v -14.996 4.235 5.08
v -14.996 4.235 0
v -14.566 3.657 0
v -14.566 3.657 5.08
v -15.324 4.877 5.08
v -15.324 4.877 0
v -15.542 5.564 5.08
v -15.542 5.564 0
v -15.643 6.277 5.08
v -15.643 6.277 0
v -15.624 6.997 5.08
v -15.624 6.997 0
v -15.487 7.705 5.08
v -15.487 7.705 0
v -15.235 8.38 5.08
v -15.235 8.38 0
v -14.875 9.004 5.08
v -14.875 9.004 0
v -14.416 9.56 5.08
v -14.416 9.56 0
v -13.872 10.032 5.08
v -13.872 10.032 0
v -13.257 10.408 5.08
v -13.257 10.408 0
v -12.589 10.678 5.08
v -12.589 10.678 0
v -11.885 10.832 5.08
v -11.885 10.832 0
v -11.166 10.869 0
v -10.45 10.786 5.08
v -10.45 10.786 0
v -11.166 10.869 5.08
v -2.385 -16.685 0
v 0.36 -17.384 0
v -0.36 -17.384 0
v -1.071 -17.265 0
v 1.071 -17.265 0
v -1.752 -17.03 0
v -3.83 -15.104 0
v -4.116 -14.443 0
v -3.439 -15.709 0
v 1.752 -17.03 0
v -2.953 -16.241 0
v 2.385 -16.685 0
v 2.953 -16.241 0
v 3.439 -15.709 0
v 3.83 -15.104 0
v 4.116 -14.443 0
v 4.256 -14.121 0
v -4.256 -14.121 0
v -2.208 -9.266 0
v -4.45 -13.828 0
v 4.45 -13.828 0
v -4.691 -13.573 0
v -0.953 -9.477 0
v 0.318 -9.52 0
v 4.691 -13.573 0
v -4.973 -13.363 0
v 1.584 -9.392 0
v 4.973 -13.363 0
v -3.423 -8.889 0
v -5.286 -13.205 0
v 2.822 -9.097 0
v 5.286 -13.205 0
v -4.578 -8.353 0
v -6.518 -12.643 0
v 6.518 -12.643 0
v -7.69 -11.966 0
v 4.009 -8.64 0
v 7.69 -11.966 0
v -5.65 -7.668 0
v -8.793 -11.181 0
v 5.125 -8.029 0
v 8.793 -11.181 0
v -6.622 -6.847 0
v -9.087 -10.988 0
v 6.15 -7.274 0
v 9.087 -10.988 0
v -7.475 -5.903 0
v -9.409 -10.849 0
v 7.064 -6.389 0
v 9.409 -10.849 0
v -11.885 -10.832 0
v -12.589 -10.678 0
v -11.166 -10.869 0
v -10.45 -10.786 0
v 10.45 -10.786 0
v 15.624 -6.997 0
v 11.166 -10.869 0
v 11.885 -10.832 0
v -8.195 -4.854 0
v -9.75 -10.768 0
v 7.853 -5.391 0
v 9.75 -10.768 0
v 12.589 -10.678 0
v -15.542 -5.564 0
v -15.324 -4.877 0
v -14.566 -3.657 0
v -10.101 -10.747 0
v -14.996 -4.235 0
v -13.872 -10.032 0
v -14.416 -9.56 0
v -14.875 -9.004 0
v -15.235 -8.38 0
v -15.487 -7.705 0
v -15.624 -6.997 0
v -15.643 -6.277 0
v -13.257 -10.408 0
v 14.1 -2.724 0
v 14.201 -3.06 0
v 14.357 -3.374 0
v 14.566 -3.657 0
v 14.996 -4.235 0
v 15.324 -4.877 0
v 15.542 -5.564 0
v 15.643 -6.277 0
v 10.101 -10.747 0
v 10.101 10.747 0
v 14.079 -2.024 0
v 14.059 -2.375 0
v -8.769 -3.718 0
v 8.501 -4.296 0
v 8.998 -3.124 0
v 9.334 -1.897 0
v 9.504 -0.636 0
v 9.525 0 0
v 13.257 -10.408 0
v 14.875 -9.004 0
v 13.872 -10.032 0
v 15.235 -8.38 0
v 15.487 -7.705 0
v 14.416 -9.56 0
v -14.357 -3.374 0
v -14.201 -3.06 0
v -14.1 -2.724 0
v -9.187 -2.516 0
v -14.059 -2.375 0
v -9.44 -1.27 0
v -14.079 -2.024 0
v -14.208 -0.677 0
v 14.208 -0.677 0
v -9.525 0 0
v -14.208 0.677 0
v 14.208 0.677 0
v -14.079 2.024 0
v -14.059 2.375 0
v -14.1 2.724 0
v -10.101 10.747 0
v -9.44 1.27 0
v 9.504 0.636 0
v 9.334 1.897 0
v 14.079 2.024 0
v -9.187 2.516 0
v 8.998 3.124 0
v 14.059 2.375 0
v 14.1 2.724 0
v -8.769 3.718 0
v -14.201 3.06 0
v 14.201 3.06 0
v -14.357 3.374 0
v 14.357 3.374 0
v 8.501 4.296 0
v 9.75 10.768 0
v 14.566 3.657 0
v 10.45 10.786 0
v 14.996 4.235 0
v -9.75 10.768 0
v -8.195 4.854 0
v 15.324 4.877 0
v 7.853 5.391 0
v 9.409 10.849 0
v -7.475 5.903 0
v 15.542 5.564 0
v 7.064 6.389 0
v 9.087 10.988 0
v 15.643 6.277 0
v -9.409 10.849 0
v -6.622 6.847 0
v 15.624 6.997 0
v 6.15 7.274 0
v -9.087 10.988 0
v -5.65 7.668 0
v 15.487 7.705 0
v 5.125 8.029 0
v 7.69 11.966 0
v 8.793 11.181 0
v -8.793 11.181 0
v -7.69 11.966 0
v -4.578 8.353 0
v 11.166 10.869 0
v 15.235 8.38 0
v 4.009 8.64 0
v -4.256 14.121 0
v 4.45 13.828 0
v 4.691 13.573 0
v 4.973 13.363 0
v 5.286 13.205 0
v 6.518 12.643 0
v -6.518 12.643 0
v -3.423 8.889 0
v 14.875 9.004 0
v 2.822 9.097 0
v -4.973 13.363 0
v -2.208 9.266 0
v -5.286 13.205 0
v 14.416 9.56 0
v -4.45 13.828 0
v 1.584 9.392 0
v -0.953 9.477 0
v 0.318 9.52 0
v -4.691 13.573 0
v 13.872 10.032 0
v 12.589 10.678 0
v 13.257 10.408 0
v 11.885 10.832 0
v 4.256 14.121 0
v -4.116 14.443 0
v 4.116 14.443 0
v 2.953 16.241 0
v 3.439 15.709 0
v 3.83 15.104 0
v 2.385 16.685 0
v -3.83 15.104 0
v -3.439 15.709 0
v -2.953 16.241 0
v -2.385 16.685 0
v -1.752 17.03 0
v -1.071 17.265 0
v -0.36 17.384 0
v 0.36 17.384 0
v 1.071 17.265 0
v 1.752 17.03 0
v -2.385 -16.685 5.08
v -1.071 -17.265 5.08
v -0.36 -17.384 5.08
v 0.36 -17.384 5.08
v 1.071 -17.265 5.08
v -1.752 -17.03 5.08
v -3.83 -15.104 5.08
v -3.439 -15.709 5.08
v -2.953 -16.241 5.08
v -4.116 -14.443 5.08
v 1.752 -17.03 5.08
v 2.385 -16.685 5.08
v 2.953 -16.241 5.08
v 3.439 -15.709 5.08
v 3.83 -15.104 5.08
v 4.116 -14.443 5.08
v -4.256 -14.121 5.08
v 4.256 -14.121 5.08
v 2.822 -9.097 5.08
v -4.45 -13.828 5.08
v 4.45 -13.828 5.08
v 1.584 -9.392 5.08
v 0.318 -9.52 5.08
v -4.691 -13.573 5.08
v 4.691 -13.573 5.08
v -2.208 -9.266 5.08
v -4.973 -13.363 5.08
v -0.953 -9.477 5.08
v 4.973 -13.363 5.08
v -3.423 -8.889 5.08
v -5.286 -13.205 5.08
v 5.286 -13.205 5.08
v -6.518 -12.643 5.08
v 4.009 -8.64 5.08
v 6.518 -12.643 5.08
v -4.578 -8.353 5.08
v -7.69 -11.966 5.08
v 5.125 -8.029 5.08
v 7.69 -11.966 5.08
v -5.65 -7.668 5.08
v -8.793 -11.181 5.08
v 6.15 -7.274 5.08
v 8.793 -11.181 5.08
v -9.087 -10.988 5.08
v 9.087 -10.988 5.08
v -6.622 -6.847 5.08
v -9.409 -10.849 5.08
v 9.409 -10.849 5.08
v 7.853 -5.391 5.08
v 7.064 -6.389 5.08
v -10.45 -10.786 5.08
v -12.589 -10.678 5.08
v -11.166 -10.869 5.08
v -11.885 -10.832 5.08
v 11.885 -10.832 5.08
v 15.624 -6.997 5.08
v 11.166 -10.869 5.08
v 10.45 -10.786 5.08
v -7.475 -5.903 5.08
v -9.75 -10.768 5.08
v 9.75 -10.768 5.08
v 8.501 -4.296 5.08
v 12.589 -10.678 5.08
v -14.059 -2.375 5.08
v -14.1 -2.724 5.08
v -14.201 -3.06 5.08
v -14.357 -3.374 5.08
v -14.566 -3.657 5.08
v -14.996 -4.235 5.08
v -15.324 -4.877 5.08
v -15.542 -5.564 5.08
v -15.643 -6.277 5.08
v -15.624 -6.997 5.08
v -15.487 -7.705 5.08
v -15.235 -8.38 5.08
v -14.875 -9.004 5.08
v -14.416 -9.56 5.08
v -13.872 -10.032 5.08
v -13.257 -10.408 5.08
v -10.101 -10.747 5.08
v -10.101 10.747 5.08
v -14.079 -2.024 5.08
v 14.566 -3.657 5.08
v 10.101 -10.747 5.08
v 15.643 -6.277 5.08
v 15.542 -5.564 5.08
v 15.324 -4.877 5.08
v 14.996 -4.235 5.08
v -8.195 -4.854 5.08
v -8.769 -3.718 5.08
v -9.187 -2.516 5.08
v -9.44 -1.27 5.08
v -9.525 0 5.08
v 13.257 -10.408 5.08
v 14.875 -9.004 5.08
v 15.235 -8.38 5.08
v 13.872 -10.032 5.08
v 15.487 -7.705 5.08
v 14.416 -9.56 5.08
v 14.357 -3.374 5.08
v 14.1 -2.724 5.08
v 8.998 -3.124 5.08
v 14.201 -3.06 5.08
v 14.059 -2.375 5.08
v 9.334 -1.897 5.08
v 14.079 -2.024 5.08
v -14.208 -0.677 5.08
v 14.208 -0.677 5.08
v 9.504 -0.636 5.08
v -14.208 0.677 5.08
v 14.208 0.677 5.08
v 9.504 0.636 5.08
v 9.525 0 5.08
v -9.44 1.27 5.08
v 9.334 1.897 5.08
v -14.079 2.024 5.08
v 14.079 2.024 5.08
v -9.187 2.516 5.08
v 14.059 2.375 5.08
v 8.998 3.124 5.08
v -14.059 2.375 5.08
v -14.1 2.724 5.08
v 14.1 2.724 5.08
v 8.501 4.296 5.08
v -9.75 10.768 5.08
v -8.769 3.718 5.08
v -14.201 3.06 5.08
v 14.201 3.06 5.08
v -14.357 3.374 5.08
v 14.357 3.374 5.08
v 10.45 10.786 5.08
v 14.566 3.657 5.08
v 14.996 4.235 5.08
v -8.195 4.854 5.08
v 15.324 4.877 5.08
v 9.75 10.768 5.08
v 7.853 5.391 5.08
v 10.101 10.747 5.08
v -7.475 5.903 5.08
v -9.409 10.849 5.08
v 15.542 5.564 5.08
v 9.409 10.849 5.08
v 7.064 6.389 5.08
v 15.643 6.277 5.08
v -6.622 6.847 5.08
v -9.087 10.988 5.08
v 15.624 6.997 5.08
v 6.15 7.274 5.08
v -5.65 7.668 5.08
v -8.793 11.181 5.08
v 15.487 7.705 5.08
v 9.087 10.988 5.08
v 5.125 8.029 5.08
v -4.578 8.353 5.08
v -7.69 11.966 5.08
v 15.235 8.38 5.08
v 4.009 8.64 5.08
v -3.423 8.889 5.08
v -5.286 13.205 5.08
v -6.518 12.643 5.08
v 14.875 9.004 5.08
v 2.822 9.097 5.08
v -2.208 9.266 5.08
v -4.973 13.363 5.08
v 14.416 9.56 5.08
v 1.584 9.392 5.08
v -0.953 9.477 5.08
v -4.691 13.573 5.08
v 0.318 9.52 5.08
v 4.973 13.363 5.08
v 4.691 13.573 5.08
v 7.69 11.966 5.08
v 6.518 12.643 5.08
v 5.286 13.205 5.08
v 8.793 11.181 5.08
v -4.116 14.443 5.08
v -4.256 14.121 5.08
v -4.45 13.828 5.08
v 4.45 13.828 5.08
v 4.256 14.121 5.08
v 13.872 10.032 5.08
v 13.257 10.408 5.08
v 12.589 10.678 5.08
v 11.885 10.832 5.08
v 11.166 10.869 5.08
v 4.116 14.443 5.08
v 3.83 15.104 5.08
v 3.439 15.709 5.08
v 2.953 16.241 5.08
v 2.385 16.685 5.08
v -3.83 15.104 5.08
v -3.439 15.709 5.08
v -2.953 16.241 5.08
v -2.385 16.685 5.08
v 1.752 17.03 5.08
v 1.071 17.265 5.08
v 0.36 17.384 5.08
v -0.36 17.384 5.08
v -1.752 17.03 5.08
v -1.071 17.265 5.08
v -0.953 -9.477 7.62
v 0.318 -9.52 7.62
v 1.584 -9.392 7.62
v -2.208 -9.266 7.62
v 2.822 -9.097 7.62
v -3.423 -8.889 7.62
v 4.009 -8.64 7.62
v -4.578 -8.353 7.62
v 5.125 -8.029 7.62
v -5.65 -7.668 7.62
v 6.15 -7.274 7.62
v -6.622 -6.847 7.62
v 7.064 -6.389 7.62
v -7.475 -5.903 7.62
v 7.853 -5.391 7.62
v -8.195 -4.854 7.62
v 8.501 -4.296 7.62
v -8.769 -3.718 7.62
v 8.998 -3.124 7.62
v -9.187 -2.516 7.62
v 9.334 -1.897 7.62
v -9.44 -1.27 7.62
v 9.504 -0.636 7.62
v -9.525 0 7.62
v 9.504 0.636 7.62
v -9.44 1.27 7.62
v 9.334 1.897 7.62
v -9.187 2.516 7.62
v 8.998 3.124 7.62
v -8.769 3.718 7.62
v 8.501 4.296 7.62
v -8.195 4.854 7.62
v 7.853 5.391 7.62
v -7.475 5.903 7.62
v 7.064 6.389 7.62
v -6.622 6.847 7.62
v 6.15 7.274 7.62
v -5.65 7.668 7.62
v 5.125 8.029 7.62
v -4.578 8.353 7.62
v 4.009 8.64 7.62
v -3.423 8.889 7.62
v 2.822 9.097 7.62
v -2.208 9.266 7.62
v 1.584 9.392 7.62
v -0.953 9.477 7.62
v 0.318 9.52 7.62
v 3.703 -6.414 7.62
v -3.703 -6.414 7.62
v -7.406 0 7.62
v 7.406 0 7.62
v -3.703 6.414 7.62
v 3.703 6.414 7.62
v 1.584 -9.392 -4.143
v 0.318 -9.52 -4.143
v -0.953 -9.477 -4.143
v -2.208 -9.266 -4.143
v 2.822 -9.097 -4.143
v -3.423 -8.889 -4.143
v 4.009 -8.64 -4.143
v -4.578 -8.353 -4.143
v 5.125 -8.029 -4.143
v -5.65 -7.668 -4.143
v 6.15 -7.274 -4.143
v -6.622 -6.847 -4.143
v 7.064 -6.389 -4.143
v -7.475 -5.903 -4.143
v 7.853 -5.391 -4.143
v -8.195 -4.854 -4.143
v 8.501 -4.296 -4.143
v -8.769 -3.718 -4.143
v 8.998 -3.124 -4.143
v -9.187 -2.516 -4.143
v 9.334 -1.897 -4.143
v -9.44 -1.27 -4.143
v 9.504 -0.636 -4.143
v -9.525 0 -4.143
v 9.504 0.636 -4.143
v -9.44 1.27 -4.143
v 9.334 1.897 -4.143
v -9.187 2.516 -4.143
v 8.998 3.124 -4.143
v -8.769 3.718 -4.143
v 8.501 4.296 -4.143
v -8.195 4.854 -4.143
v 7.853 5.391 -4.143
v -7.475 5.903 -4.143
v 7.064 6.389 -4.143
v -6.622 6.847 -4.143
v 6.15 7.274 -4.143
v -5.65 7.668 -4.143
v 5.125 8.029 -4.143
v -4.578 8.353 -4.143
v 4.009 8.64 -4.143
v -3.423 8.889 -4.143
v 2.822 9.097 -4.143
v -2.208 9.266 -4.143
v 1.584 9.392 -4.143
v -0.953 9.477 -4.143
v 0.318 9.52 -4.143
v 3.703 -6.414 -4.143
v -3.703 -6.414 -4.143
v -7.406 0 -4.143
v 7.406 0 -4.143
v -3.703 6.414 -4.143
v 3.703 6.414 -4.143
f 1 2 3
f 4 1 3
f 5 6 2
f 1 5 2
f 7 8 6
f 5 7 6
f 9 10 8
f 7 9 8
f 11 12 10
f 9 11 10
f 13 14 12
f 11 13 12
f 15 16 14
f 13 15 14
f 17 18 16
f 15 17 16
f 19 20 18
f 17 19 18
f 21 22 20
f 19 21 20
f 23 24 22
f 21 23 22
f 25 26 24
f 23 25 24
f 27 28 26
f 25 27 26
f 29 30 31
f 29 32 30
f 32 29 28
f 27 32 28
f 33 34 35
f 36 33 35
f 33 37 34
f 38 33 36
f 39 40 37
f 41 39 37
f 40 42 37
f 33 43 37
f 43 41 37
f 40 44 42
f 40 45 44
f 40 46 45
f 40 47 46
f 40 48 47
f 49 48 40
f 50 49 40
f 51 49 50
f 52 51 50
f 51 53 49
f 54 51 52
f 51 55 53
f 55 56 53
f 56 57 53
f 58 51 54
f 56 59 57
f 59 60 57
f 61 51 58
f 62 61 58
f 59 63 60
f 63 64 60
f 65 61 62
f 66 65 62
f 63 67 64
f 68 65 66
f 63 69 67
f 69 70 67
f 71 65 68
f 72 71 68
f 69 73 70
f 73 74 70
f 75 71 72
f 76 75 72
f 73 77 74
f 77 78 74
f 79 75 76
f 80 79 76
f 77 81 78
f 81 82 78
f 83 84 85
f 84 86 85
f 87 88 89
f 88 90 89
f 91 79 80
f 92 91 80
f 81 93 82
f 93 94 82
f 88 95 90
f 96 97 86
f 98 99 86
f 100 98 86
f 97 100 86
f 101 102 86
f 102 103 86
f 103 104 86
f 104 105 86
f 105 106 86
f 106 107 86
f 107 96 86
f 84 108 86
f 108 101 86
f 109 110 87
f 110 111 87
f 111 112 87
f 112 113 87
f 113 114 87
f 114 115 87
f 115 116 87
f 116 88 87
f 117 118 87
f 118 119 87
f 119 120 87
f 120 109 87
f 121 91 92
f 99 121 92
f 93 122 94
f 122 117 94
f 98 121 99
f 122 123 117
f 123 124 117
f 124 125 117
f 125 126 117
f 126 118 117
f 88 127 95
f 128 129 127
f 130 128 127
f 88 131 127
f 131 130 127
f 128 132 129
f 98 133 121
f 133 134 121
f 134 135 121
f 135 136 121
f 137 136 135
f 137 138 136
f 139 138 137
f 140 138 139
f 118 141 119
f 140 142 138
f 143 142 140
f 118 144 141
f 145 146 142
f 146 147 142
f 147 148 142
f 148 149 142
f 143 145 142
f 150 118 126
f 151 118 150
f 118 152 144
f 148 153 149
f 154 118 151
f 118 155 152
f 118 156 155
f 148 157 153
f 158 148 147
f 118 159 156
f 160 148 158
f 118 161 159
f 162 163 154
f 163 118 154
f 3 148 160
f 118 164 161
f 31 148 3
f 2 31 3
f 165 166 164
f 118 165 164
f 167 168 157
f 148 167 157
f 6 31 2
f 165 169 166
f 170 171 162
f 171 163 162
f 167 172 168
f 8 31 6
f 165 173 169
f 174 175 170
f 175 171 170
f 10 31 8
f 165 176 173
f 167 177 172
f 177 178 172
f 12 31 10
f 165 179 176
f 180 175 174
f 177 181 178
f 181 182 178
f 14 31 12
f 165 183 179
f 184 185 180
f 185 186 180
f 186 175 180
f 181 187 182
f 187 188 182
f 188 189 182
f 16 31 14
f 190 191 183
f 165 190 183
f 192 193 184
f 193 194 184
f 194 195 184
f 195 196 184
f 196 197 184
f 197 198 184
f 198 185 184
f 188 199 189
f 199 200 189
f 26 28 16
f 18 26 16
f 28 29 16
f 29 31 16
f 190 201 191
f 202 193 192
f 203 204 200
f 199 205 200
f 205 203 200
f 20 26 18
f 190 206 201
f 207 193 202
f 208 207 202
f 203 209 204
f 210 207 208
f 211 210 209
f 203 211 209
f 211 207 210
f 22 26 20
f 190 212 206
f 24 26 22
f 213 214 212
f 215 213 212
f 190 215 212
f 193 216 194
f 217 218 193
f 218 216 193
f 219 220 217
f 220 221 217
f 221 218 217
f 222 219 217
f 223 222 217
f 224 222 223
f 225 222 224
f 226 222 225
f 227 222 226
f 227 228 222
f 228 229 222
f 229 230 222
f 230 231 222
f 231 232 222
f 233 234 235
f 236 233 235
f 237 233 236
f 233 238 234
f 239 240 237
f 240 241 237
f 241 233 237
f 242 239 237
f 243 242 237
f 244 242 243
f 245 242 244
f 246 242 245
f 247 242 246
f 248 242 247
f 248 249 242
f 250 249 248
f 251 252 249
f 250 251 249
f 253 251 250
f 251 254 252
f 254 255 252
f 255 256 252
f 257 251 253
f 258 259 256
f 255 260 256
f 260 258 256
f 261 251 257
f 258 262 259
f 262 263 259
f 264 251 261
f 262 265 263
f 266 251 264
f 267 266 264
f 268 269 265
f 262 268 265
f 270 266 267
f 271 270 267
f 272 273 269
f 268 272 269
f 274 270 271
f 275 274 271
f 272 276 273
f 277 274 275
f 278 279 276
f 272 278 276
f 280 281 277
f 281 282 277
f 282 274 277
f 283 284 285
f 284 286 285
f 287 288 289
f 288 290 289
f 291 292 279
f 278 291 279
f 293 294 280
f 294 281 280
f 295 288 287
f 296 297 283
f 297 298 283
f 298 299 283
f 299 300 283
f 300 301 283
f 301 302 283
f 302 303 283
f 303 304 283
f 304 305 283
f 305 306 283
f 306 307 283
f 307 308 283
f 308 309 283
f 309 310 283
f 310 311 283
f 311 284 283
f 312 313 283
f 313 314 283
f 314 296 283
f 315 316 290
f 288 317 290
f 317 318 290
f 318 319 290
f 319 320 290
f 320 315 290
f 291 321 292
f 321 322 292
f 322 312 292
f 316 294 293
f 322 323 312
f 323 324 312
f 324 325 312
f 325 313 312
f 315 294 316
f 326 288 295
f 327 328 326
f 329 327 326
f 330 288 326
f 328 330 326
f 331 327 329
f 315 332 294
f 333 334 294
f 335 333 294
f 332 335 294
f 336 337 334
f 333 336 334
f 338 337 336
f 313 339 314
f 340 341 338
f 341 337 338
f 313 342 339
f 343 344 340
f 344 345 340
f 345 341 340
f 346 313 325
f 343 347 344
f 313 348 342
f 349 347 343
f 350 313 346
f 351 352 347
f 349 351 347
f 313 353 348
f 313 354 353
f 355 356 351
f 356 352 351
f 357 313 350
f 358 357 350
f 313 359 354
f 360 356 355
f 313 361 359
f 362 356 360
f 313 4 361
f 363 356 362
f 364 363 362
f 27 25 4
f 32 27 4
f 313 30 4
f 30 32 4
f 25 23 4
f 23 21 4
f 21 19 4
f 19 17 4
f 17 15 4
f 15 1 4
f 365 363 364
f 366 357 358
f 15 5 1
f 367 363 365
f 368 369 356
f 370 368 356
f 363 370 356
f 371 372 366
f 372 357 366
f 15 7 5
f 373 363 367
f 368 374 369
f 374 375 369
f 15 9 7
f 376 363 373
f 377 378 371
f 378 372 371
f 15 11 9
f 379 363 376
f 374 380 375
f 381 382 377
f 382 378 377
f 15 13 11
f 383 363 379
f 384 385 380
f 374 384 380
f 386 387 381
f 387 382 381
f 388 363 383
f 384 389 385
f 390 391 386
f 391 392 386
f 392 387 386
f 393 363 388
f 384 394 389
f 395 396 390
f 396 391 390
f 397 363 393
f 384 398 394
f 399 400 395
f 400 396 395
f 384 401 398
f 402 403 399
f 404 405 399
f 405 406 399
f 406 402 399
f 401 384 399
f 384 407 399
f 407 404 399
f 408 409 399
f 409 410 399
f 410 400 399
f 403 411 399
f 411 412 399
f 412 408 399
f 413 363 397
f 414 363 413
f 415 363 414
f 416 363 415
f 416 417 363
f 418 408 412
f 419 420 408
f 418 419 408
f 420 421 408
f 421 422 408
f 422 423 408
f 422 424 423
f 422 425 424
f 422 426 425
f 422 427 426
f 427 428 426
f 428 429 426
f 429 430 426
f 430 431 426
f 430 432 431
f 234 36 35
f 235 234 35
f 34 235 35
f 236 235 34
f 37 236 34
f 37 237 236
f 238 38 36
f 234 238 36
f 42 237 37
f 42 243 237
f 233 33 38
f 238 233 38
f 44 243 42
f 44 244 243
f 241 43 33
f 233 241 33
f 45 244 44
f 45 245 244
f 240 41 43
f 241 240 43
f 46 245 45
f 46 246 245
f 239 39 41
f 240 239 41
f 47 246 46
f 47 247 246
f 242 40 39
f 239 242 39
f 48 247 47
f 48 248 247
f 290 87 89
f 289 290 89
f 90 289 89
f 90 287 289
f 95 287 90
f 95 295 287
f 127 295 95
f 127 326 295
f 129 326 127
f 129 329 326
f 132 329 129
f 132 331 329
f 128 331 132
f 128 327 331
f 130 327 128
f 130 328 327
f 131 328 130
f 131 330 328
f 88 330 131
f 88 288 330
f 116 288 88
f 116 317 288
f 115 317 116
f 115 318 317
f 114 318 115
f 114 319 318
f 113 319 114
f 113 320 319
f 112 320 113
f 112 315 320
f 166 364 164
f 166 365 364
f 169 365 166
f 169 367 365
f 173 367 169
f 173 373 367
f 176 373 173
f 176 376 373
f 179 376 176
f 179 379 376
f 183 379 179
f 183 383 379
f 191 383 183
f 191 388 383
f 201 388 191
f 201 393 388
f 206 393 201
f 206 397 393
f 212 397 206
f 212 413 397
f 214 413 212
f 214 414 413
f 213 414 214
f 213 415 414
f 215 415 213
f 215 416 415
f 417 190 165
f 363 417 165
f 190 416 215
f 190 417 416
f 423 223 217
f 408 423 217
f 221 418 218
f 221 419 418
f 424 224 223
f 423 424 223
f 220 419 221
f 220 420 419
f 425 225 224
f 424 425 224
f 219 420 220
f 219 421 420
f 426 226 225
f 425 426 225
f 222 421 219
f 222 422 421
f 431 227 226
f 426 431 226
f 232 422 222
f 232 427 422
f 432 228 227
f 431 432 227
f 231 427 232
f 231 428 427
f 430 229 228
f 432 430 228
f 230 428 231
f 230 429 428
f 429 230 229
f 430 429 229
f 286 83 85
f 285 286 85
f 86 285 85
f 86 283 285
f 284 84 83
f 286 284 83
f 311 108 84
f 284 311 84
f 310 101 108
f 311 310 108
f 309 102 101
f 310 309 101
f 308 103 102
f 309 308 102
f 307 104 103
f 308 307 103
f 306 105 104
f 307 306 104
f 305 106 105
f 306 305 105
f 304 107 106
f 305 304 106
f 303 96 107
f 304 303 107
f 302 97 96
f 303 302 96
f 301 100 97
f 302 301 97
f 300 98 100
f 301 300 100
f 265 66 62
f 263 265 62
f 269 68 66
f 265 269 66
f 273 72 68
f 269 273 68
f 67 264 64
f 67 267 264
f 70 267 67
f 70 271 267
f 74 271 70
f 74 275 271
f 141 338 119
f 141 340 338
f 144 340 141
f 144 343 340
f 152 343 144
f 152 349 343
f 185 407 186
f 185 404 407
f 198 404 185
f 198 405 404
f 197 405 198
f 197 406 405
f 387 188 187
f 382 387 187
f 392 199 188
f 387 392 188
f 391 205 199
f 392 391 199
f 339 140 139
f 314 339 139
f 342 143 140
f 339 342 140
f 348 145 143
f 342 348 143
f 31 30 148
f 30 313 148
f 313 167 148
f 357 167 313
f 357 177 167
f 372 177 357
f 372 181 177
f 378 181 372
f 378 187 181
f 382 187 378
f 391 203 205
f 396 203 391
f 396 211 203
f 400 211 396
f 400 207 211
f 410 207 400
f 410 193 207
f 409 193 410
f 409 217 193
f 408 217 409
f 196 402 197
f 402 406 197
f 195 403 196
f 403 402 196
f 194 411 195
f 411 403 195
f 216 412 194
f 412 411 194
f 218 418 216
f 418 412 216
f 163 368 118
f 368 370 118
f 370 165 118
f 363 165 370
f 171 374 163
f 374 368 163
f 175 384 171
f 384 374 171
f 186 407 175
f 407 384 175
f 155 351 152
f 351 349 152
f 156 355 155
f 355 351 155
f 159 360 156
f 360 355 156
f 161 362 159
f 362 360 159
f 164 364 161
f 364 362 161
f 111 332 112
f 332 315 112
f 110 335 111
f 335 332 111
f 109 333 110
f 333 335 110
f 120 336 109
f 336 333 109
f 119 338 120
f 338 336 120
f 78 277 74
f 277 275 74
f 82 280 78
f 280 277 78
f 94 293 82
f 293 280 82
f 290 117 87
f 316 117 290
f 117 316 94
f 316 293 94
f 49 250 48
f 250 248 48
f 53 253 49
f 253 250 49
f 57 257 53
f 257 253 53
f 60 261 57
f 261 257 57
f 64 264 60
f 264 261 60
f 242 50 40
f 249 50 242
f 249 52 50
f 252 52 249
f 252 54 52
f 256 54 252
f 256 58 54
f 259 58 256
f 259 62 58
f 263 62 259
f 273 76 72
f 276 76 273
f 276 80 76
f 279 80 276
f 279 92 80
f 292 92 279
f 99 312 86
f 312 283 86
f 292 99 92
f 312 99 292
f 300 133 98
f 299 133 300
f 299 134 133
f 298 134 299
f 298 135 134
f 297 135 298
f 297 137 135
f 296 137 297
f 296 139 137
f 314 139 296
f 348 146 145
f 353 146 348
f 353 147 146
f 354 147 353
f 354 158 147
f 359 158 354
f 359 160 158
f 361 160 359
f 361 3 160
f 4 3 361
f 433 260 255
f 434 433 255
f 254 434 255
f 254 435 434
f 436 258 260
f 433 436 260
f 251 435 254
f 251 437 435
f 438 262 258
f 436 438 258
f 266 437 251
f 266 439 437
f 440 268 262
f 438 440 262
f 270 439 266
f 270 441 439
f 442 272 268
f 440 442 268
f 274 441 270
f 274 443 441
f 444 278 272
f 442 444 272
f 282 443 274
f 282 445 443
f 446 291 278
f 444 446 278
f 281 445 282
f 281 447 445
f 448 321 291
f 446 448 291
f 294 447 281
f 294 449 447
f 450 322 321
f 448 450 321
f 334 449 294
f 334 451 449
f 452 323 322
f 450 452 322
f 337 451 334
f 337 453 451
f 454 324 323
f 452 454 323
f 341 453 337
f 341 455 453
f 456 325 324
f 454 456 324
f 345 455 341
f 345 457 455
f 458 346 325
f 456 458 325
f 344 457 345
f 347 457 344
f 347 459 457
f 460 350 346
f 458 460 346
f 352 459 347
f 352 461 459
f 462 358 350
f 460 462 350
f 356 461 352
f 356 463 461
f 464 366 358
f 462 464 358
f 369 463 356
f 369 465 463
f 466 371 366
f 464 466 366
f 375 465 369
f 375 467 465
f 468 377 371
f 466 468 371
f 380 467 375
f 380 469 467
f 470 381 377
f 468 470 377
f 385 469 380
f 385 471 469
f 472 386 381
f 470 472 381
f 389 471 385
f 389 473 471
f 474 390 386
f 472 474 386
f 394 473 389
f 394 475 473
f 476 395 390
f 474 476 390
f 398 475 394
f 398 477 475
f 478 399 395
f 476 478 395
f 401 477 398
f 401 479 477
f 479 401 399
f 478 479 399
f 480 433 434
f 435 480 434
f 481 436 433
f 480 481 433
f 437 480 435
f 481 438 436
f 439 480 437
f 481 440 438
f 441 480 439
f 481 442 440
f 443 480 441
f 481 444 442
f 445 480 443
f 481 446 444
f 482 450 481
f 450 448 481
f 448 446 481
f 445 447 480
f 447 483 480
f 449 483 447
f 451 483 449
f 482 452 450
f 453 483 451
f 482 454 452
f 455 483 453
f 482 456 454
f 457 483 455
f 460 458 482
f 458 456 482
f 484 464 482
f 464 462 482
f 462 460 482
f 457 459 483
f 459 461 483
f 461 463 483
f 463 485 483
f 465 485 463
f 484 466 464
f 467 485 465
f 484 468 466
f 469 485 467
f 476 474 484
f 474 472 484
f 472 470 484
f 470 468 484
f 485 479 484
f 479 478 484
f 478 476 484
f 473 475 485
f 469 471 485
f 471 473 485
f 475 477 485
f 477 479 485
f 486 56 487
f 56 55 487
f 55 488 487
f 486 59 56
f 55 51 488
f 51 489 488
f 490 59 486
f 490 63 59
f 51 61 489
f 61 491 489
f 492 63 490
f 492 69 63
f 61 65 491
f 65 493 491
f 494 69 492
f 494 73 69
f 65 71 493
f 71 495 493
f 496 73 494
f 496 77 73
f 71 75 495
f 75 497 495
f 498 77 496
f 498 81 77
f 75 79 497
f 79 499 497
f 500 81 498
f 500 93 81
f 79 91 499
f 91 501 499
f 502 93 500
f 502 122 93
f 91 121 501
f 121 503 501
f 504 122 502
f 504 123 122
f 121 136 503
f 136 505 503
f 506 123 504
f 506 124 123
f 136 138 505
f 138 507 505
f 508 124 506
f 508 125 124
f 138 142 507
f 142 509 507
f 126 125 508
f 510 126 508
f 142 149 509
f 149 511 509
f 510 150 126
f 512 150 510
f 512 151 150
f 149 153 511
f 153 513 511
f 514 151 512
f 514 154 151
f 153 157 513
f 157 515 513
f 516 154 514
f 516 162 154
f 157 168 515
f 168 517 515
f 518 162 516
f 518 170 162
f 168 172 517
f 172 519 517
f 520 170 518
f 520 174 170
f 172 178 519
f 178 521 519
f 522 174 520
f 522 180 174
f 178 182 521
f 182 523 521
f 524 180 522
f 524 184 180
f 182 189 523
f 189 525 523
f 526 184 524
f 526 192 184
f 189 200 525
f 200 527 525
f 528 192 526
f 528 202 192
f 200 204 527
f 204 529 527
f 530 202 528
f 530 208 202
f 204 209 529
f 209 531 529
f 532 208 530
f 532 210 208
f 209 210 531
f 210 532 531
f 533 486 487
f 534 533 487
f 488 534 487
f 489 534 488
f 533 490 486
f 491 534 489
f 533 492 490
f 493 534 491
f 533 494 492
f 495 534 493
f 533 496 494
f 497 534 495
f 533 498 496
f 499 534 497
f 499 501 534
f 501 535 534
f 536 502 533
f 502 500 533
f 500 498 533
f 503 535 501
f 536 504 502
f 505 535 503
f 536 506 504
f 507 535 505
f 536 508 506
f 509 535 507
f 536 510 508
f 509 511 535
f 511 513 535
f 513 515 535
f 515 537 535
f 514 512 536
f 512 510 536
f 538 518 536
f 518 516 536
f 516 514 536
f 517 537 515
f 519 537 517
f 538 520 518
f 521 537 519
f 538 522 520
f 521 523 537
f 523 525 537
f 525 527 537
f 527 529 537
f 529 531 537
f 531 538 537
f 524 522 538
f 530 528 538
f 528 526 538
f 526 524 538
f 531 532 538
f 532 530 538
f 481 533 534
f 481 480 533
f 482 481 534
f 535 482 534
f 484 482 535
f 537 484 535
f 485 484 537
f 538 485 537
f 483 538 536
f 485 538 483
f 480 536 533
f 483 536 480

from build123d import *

# Parameters (mm, degrees)
BOSS_EXTRUDE2_DEPTH      = 5.08
FILLET1_R                = 2.032
CUT_EXTRUDE1_DEPTH       = 24.94682426
BOSS_EXTRUDE3_DEPTH      = 4.143000096
BOSS_EXTRUDE3_DEPTH_BACK = 7.62
SKETCH7_R                = 9.525


with BuildPart() as part:
    # Sketch5 → Boss-Extrude2 (new body)
    with BuildSketch(Plane.XY):
        with BuildLine():
            ThreePointArc((13.895294195, 3.040226179), (15.067976, 8.6995), (9.580560202, 10.513564677))
            ThreePointArc((9.580560202, 10.513564677), (7.112, 12.318345343), (4.314733993, 13.553790856))
            ThreePointArc((4.314733993, 13.553790856), (0, 17.399), (-4.314733993, 13.553790856))
            ThreePointArc((-4.314733993, 13.553790856), (-7.112, 12.318345343), (-9.580560202, 10.513564677))
            ThreePointArc((-9.580560202, 10.513564677), (-15.067976, 8.6995), (-13.895294195, 3.040226179))
            ThreePointArc((-13.895294195, 3.040226179), (-14.224, 0), (-13.895294195, -3.040226179))
            ThreePointArc((-13.895294195, -3.040226179), (-15.067976, -8.6995), (-9.580560202, -10.513564677))
            ThreePointArc((-9.580560202, -10.513564677), (-7.112, -12.318345343), (-4.314733993, -13.553790856))
            ThreePointArc((-4.314733993, -13.553790856), (0, -17.399), (4.314733993, -13.553790856))
            ThreePointArc((4.314733993, -13.553790856), (7.112, -12.318345343), (9.580560202, -10.513564677))
            ThreePointArc((9.580560202, -10.513564677), (15.067976, -8.6995), (13.895294195, -3.040226179))
            ThreePointArc((13.895294195, -3.040226179), (14.224, 0), (13.895294195, 3.040226179))
        make_face()
    extrude(amount=BOSS_EXTRUDE2_DEPTH)

    # Fillet1
    fillet1_edges = [part.edges().sort_by_distance(p)[0] for p in [
        (-4.314733993, 13.553790856, 2.54),
        (4.314733993, 13.553790856, 2.54),
        (9.580560202, 10.513564677, 2.54),
        (13.895294195, 3.040226179, 2.54),
        (13.895294195, -3.040226179, 2.54),
        (9.580560202, -10.513564677, 2.54),
        (4.314733993, -13.553790856, 2.54),
        (-4.314733993, -13.553790856, 2.54),
        (-9.580560202, -10.513564677, 2.54),
        (-13.895294195, -3.040226179, 2.54),
        (-9.580560202, 10.513564677, 2.54),
        (-13.895294195, 3.040226179, 2.54),
    ]]
    fillet(fillet1_edges, radius=FILLET1_R)

    # Sketch6 → Cut-Extrude1 (cut, through all)
    with BuildSketch(Plane.XY.offset(5.08)):
        Polygon((7.405671903, 0), (3.702835951, 6.4135), (-3.702835951, 6.4135), (-7.405671903, 0), (-3.702835951, -6.4135), (3.702835951, -6.4135), align=None)
    extrude(amount=-CUT_EXTRUDE1_DEPTH, mode=Mode.SUBTRACT)

    # Sketch7 → Boss-Extrude3 (add, two sides: drawn at the far end of the back side and taken through both)
    with BuildSketch(Plane(origin=(0, 0, 0), x_dir=(-1, 0, 0), z_dir=(0, 0, -1)).offset(-BOSS_EXTRUDE3_DEPTH_BACK)):
        Circle(SKETCH7_R)
        Polygon((-7.405671903, 0), (-3.702835951, 6.4135), (3.702835951, 6.4135), (7.405671903, 0), (3.702835951, -6.4135), (-3.702835951, -6.4135), align=None, mode=Mode.SUBTRACT)
    extrude(amount=BOSS_EXTRUDE3_DEPTH + BOSS_EXTRUDE3_DEPTH_BACK)


solid = part.part
